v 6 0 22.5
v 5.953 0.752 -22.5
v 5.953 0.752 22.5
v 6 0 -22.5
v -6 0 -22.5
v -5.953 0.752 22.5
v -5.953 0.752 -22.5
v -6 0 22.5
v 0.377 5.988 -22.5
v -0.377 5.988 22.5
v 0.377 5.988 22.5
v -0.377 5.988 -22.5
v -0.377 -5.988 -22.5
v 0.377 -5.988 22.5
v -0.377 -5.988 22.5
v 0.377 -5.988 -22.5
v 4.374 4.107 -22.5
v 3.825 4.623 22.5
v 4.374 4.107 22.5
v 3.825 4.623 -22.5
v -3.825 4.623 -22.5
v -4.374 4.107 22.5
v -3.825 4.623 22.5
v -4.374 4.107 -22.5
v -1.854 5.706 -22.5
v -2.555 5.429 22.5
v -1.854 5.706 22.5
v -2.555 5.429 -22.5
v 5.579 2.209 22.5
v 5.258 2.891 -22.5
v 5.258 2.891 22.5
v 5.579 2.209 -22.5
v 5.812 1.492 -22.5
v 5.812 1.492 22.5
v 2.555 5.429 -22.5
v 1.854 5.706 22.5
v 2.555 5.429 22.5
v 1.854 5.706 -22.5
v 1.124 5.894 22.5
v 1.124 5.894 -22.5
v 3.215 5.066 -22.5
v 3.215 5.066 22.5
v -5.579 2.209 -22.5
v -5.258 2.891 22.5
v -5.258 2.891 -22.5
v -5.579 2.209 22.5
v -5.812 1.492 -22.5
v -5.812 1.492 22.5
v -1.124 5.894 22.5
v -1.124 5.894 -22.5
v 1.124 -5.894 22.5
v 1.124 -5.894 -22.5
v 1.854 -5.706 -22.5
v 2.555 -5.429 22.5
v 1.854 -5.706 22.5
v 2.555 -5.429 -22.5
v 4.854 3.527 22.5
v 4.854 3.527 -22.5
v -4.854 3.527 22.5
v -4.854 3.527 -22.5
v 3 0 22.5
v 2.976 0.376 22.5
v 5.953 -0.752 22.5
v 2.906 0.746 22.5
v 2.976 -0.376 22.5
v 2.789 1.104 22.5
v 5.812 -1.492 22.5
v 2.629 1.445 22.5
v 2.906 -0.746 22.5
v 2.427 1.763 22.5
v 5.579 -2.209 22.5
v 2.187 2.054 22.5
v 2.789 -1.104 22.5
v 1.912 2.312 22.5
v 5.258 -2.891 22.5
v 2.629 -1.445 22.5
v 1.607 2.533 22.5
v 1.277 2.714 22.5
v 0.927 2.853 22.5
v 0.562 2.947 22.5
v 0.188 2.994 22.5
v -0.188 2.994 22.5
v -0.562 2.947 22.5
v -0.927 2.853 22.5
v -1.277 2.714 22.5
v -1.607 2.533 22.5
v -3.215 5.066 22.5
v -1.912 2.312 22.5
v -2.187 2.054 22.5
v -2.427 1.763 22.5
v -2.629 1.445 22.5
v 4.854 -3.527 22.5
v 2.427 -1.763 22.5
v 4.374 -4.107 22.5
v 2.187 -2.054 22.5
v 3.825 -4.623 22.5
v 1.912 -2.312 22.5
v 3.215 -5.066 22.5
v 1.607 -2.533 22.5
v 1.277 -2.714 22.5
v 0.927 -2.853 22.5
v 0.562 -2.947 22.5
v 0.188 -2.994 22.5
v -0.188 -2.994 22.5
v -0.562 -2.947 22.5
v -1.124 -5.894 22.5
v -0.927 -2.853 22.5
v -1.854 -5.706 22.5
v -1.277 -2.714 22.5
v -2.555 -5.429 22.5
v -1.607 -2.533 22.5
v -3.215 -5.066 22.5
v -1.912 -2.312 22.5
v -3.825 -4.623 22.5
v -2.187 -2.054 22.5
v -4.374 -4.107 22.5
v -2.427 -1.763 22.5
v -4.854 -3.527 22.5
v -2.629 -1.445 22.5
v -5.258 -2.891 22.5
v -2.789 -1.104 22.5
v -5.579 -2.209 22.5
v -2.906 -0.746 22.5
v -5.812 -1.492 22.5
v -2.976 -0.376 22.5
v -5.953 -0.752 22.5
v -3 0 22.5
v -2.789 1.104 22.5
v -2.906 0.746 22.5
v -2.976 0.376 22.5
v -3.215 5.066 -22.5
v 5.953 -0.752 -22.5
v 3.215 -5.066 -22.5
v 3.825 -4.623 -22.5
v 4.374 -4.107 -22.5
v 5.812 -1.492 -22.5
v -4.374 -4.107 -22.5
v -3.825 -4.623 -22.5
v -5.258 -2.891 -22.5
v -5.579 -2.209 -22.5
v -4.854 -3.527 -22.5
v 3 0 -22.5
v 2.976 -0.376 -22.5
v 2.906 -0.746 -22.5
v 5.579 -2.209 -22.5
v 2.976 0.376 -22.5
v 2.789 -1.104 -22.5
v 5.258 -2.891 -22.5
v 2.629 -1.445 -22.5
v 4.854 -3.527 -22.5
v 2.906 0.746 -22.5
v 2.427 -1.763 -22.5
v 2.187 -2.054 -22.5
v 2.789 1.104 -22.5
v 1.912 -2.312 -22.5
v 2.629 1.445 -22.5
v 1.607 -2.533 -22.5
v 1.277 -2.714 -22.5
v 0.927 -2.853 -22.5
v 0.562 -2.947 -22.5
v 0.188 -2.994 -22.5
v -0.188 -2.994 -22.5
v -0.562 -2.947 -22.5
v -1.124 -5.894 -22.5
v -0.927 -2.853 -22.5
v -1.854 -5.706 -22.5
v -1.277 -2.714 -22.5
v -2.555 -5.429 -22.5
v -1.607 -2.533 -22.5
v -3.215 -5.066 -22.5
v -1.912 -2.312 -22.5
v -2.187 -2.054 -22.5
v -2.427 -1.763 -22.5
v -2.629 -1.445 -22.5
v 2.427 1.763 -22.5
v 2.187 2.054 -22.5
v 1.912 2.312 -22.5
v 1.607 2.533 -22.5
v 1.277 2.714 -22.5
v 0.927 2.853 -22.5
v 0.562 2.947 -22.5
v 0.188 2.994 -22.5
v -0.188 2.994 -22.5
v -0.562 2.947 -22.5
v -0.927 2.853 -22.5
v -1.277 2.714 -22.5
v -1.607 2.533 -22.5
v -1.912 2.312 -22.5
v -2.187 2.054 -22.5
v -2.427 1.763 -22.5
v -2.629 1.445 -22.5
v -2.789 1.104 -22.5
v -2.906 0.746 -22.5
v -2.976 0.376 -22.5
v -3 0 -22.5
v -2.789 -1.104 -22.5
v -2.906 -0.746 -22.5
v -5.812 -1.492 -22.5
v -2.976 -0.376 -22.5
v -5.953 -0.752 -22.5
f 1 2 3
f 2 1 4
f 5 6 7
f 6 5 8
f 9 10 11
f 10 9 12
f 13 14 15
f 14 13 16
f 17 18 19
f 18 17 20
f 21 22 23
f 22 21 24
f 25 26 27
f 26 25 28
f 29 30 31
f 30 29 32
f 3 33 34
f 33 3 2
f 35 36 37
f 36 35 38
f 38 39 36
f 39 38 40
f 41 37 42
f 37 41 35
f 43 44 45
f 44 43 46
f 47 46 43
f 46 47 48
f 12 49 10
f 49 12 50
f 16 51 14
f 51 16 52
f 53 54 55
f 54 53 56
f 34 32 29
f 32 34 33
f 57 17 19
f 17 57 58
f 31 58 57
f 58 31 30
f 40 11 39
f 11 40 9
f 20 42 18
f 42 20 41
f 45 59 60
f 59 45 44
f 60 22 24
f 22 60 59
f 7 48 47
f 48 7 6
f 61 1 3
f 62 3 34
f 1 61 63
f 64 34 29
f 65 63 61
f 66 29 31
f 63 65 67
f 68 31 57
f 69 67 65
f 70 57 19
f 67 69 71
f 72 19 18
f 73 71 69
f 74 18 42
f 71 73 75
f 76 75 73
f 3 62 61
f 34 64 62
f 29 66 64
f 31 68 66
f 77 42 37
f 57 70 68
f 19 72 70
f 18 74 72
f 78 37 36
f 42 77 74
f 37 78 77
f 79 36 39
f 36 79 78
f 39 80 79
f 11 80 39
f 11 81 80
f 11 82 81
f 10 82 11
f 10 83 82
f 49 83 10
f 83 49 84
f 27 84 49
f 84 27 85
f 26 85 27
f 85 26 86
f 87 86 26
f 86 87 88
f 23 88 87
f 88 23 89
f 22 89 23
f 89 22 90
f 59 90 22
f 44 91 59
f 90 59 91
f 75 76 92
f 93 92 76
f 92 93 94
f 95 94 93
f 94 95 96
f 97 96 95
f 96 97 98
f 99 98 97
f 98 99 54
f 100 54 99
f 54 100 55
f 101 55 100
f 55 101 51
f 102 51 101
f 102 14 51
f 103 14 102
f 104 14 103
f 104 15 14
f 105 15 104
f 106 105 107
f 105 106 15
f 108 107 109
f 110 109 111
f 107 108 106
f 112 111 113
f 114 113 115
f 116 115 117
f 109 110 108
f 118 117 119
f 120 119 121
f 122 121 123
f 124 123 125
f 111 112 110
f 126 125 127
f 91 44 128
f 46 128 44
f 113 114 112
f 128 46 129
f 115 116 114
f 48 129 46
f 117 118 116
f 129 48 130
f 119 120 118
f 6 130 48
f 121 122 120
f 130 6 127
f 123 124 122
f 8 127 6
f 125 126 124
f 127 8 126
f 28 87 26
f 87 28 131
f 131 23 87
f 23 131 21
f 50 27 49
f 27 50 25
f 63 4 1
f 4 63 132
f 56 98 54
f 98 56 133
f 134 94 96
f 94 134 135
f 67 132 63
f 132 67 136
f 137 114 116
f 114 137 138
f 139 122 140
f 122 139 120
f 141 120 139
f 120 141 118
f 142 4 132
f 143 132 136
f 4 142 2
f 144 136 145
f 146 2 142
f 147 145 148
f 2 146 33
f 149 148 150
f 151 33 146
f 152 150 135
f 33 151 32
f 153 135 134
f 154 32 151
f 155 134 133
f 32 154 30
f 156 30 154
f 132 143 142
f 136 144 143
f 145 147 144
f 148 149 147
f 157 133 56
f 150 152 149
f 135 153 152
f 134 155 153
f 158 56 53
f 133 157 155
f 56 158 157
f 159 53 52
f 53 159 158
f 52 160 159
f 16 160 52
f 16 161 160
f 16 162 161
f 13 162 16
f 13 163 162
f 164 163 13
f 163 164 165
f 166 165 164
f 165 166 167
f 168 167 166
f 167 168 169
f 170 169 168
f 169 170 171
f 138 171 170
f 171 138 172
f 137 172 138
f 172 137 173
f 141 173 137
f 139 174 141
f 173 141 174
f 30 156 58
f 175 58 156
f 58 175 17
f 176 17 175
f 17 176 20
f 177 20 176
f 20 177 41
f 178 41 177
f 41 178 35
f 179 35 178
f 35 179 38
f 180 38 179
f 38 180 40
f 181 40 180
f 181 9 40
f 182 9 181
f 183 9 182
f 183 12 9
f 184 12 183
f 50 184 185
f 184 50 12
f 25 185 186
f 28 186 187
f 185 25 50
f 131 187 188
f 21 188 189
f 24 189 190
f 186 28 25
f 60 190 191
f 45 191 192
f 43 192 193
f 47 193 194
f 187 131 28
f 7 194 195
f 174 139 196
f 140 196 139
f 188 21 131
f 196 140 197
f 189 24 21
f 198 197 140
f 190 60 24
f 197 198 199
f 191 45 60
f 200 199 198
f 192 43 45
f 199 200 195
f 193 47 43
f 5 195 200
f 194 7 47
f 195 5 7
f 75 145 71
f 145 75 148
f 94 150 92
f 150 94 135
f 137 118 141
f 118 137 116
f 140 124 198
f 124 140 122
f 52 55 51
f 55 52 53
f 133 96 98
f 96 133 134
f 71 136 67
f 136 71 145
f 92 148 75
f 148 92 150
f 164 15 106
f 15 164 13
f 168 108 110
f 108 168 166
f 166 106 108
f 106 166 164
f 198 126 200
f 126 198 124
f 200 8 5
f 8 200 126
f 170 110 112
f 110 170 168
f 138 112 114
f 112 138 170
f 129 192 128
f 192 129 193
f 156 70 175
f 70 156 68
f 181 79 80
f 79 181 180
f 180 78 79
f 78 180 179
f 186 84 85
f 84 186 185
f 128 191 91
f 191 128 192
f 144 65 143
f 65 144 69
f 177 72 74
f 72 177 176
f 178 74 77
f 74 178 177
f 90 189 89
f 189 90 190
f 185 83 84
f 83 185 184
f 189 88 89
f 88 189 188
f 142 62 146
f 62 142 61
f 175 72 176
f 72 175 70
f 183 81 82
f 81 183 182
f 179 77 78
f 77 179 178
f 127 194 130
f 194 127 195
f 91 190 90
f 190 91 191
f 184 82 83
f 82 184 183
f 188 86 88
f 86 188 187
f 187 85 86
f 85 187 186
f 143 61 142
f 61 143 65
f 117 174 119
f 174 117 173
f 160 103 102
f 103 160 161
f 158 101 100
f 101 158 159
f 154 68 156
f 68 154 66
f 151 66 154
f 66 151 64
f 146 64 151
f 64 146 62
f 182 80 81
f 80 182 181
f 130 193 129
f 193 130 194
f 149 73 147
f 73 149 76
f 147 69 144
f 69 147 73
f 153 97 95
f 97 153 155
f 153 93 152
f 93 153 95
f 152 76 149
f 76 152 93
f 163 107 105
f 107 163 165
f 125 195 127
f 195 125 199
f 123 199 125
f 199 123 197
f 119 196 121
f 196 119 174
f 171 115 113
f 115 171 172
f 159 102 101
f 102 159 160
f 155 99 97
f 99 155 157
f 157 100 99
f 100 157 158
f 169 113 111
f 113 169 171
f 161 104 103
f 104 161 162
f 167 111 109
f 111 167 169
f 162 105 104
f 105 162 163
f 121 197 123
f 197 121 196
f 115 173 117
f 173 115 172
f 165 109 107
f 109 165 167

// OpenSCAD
$fn = 50;


difference() {
	union() {
		translate(v = [0, 0, -22.5000000000]) {
			cylinder(h = 45, r = 6.0000000000);
		}
	}
	union() {
		translate(v = [0, 0, -100.0000000000]) {
			cylinder(h = 200, r = 3);
		}
	}
}
